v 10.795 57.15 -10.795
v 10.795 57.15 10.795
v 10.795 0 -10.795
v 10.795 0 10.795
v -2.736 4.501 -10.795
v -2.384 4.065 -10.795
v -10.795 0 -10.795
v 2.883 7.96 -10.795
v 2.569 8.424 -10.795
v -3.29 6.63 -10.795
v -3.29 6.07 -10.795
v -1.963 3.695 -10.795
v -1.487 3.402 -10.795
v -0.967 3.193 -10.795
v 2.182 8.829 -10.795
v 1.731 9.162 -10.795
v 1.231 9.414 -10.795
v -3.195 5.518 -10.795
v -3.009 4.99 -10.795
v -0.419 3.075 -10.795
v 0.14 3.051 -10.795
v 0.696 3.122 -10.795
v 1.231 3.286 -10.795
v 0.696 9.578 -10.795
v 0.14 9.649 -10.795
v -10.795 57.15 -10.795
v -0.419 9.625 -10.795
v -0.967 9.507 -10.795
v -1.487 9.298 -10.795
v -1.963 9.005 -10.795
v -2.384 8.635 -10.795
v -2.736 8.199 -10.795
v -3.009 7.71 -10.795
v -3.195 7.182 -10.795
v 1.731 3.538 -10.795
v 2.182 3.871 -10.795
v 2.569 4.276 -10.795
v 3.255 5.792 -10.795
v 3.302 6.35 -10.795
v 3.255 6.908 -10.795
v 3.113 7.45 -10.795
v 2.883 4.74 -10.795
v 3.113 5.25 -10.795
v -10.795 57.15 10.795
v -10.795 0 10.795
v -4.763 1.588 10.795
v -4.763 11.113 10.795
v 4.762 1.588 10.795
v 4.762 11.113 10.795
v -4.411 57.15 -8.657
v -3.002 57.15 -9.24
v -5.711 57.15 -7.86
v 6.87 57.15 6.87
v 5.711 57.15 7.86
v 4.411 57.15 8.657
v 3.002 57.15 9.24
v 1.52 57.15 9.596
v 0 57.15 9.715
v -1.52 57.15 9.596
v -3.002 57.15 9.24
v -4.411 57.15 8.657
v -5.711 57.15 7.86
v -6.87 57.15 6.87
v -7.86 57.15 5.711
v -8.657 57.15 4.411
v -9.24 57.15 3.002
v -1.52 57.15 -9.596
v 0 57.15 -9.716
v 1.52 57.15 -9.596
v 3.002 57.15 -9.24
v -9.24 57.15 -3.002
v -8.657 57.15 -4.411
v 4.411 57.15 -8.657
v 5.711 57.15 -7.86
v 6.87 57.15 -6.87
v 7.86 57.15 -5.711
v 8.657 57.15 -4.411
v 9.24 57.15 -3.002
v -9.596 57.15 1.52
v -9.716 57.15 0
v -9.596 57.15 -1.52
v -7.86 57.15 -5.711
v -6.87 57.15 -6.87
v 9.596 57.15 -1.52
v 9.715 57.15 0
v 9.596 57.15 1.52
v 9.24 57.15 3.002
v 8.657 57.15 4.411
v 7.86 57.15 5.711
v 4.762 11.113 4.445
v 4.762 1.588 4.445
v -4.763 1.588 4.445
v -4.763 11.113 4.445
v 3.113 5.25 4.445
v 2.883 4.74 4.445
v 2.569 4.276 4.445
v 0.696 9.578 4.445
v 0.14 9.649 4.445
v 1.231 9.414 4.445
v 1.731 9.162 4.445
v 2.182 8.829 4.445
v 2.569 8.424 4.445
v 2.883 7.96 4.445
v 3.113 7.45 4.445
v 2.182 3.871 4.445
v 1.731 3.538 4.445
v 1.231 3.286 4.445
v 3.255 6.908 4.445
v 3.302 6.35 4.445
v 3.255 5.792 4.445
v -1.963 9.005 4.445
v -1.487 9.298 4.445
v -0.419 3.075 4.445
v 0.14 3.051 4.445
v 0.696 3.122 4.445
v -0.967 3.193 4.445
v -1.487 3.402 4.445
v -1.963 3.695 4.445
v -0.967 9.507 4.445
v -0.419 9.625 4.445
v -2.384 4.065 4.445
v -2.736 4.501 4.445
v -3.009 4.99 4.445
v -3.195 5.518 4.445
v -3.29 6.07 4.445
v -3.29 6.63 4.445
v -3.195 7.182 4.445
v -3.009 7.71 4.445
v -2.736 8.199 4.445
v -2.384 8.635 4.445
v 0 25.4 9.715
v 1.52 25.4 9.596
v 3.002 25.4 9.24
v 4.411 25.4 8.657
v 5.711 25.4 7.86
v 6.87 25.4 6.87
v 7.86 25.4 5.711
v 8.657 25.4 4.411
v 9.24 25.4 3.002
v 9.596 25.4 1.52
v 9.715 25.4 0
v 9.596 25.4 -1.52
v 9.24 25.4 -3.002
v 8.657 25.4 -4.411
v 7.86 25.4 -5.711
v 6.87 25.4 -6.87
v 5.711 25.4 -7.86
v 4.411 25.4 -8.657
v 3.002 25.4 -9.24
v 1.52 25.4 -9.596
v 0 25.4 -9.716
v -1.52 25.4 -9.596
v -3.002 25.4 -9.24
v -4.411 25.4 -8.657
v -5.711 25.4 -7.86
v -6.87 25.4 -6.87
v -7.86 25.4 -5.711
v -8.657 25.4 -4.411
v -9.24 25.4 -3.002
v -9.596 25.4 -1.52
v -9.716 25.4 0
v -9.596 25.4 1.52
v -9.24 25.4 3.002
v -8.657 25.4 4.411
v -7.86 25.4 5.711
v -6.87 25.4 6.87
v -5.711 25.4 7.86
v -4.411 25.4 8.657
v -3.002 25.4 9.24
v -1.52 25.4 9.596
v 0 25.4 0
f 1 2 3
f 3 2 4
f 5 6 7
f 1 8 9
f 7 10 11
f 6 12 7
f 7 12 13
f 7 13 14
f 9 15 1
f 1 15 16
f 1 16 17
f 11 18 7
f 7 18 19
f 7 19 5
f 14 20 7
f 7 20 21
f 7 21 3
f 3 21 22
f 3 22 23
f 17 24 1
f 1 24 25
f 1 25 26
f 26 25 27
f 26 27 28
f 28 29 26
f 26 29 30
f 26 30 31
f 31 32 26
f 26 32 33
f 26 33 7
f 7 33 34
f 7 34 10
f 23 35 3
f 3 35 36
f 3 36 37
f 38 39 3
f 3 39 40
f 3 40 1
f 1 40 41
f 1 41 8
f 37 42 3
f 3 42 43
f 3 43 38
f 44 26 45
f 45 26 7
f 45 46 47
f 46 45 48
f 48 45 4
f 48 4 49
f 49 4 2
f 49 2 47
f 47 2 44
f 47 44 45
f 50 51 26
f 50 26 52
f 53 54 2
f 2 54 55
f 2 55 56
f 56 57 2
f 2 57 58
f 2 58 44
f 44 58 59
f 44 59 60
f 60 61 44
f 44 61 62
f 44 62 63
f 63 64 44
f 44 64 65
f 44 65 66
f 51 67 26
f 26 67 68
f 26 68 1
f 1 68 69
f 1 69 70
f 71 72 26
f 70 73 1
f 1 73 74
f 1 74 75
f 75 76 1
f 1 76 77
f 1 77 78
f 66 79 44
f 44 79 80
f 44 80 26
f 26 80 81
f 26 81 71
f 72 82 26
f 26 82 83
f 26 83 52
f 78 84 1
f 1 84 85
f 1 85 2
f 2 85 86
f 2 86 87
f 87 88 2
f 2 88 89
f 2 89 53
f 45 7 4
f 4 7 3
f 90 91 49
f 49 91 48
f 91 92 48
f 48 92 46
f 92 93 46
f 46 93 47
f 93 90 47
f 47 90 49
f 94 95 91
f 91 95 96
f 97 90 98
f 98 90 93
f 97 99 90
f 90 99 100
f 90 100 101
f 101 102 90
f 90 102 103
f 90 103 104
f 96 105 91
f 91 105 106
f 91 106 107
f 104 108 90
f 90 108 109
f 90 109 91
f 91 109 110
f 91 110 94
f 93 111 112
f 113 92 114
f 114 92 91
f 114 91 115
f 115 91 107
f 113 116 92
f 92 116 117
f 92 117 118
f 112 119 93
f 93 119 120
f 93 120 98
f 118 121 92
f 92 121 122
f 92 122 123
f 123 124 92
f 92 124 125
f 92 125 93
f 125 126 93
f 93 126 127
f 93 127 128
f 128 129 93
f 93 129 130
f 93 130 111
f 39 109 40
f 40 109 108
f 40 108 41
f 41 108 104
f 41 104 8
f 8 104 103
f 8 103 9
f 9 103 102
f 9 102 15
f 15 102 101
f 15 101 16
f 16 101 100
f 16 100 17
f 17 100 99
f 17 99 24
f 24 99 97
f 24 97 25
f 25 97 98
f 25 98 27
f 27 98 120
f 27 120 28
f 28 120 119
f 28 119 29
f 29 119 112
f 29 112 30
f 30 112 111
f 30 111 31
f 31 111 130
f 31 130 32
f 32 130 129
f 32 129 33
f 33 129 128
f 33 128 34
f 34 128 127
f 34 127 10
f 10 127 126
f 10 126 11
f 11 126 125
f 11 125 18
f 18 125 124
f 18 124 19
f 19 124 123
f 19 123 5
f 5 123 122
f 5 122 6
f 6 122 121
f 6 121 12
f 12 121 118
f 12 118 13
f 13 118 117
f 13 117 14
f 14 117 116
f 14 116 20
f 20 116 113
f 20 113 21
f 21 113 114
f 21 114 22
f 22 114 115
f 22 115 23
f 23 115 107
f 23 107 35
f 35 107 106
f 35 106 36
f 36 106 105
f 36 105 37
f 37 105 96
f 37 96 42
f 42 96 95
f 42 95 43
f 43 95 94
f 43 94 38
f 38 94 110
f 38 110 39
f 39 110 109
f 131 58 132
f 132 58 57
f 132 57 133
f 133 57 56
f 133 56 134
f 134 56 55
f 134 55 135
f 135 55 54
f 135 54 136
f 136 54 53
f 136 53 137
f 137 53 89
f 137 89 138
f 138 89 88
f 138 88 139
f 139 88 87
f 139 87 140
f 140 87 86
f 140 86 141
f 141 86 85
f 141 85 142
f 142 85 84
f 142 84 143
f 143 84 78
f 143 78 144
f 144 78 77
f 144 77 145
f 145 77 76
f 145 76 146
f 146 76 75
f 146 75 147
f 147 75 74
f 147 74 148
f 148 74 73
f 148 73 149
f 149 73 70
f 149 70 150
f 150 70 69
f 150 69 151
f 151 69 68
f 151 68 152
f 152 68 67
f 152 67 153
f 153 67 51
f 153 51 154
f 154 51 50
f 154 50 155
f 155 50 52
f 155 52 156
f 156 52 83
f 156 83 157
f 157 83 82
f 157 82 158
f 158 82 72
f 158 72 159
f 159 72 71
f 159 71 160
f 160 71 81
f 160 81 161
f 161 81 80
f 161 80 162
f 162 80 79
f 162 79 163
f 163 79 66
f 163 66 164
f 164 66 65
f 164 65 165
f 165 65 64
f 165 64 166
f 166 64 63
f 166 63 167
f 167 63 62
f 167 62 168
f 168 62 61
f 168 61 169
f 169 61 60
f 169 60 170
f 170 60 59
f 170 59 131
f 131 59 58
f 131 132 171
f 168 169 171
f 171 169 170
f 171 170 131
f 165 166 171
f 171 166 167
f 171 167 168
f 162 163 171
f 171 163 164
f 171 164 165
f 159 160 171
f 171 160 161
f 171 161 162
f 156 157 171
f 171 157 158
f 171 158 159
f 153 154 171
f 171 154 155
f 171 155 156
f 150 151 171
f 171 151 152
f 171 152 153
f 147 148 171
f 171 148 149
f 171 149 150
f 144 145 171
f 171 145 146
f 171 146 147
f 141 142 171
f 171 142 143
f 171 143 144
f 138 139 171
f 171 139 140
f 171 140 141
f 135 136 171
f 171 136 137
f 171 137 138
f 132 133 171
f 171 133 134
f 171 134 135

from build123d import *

# Parameters (mm, degrees)
SKETCH1_W           = 21.59
SKETCH1_H           = 21.59
BOSS_EXTRUDE1_DEPTH = 57.15
SKETCH2_W           = 9.525
SKETCH2_H           = 9.525
CUT_EXTRUDE1_DEPTH  = 6.35
SKETCH3_R           = 3.302
CUT_EXTRUDE2_DEPTH  = 16.24
SKETCH4_R           = 9.7155
CUT_EXTRUDE3_DEPTH  = 31.75


with BuildPart() as part:
    # Sketch1 → Boss-Extrude1 (new body)
    with BuildSketch(Plane(origin=(0, 0, 0), x_dir=(1, 0, 0), z_dir=(0, 1, 0))):
        Rectangle(SKETCH1_W, SKETCH1_H)
    extrude(amount=BOSS_EXTRUDE1_DEPTH)

    # Sketch2 → Cut-Extrude1 (cut)
    with BuildSketch(Plane.XY.offset(10.795)):
        with Locations((0, 6.35)):
            Rectangle(SKETCH2_W, SKETCH2_H)
    extrude(amount=-CUT_EXTRUDE1_DEPTH, mode=Mode.SUBTRACT)

    # Sketch3 → Cut-Extrude2 (cut, through all)
    with BuildSketch(Plane.XY.offset(4.445)):
        with Locations((0, 6.35)):
            Circle(SKETCH3_R)
    extrude(amount=-CUT_EXTRUDE2_DEPTH, mode=Mode.SUBTRACT)

    # Sketch4 → Cut-Extrude3 (cut)
    with BuildSketch(Plane(origin=(0, 57.15, 0), x_dir=(1, 0, 0), z_dir=(0, 1, 0))):
        Circle(SKETCH4_R)
    extrude(amount=-CUT_EXTRUDE3_DEPTH, mode=Mode.SUBTRACT)


solid = part.part
